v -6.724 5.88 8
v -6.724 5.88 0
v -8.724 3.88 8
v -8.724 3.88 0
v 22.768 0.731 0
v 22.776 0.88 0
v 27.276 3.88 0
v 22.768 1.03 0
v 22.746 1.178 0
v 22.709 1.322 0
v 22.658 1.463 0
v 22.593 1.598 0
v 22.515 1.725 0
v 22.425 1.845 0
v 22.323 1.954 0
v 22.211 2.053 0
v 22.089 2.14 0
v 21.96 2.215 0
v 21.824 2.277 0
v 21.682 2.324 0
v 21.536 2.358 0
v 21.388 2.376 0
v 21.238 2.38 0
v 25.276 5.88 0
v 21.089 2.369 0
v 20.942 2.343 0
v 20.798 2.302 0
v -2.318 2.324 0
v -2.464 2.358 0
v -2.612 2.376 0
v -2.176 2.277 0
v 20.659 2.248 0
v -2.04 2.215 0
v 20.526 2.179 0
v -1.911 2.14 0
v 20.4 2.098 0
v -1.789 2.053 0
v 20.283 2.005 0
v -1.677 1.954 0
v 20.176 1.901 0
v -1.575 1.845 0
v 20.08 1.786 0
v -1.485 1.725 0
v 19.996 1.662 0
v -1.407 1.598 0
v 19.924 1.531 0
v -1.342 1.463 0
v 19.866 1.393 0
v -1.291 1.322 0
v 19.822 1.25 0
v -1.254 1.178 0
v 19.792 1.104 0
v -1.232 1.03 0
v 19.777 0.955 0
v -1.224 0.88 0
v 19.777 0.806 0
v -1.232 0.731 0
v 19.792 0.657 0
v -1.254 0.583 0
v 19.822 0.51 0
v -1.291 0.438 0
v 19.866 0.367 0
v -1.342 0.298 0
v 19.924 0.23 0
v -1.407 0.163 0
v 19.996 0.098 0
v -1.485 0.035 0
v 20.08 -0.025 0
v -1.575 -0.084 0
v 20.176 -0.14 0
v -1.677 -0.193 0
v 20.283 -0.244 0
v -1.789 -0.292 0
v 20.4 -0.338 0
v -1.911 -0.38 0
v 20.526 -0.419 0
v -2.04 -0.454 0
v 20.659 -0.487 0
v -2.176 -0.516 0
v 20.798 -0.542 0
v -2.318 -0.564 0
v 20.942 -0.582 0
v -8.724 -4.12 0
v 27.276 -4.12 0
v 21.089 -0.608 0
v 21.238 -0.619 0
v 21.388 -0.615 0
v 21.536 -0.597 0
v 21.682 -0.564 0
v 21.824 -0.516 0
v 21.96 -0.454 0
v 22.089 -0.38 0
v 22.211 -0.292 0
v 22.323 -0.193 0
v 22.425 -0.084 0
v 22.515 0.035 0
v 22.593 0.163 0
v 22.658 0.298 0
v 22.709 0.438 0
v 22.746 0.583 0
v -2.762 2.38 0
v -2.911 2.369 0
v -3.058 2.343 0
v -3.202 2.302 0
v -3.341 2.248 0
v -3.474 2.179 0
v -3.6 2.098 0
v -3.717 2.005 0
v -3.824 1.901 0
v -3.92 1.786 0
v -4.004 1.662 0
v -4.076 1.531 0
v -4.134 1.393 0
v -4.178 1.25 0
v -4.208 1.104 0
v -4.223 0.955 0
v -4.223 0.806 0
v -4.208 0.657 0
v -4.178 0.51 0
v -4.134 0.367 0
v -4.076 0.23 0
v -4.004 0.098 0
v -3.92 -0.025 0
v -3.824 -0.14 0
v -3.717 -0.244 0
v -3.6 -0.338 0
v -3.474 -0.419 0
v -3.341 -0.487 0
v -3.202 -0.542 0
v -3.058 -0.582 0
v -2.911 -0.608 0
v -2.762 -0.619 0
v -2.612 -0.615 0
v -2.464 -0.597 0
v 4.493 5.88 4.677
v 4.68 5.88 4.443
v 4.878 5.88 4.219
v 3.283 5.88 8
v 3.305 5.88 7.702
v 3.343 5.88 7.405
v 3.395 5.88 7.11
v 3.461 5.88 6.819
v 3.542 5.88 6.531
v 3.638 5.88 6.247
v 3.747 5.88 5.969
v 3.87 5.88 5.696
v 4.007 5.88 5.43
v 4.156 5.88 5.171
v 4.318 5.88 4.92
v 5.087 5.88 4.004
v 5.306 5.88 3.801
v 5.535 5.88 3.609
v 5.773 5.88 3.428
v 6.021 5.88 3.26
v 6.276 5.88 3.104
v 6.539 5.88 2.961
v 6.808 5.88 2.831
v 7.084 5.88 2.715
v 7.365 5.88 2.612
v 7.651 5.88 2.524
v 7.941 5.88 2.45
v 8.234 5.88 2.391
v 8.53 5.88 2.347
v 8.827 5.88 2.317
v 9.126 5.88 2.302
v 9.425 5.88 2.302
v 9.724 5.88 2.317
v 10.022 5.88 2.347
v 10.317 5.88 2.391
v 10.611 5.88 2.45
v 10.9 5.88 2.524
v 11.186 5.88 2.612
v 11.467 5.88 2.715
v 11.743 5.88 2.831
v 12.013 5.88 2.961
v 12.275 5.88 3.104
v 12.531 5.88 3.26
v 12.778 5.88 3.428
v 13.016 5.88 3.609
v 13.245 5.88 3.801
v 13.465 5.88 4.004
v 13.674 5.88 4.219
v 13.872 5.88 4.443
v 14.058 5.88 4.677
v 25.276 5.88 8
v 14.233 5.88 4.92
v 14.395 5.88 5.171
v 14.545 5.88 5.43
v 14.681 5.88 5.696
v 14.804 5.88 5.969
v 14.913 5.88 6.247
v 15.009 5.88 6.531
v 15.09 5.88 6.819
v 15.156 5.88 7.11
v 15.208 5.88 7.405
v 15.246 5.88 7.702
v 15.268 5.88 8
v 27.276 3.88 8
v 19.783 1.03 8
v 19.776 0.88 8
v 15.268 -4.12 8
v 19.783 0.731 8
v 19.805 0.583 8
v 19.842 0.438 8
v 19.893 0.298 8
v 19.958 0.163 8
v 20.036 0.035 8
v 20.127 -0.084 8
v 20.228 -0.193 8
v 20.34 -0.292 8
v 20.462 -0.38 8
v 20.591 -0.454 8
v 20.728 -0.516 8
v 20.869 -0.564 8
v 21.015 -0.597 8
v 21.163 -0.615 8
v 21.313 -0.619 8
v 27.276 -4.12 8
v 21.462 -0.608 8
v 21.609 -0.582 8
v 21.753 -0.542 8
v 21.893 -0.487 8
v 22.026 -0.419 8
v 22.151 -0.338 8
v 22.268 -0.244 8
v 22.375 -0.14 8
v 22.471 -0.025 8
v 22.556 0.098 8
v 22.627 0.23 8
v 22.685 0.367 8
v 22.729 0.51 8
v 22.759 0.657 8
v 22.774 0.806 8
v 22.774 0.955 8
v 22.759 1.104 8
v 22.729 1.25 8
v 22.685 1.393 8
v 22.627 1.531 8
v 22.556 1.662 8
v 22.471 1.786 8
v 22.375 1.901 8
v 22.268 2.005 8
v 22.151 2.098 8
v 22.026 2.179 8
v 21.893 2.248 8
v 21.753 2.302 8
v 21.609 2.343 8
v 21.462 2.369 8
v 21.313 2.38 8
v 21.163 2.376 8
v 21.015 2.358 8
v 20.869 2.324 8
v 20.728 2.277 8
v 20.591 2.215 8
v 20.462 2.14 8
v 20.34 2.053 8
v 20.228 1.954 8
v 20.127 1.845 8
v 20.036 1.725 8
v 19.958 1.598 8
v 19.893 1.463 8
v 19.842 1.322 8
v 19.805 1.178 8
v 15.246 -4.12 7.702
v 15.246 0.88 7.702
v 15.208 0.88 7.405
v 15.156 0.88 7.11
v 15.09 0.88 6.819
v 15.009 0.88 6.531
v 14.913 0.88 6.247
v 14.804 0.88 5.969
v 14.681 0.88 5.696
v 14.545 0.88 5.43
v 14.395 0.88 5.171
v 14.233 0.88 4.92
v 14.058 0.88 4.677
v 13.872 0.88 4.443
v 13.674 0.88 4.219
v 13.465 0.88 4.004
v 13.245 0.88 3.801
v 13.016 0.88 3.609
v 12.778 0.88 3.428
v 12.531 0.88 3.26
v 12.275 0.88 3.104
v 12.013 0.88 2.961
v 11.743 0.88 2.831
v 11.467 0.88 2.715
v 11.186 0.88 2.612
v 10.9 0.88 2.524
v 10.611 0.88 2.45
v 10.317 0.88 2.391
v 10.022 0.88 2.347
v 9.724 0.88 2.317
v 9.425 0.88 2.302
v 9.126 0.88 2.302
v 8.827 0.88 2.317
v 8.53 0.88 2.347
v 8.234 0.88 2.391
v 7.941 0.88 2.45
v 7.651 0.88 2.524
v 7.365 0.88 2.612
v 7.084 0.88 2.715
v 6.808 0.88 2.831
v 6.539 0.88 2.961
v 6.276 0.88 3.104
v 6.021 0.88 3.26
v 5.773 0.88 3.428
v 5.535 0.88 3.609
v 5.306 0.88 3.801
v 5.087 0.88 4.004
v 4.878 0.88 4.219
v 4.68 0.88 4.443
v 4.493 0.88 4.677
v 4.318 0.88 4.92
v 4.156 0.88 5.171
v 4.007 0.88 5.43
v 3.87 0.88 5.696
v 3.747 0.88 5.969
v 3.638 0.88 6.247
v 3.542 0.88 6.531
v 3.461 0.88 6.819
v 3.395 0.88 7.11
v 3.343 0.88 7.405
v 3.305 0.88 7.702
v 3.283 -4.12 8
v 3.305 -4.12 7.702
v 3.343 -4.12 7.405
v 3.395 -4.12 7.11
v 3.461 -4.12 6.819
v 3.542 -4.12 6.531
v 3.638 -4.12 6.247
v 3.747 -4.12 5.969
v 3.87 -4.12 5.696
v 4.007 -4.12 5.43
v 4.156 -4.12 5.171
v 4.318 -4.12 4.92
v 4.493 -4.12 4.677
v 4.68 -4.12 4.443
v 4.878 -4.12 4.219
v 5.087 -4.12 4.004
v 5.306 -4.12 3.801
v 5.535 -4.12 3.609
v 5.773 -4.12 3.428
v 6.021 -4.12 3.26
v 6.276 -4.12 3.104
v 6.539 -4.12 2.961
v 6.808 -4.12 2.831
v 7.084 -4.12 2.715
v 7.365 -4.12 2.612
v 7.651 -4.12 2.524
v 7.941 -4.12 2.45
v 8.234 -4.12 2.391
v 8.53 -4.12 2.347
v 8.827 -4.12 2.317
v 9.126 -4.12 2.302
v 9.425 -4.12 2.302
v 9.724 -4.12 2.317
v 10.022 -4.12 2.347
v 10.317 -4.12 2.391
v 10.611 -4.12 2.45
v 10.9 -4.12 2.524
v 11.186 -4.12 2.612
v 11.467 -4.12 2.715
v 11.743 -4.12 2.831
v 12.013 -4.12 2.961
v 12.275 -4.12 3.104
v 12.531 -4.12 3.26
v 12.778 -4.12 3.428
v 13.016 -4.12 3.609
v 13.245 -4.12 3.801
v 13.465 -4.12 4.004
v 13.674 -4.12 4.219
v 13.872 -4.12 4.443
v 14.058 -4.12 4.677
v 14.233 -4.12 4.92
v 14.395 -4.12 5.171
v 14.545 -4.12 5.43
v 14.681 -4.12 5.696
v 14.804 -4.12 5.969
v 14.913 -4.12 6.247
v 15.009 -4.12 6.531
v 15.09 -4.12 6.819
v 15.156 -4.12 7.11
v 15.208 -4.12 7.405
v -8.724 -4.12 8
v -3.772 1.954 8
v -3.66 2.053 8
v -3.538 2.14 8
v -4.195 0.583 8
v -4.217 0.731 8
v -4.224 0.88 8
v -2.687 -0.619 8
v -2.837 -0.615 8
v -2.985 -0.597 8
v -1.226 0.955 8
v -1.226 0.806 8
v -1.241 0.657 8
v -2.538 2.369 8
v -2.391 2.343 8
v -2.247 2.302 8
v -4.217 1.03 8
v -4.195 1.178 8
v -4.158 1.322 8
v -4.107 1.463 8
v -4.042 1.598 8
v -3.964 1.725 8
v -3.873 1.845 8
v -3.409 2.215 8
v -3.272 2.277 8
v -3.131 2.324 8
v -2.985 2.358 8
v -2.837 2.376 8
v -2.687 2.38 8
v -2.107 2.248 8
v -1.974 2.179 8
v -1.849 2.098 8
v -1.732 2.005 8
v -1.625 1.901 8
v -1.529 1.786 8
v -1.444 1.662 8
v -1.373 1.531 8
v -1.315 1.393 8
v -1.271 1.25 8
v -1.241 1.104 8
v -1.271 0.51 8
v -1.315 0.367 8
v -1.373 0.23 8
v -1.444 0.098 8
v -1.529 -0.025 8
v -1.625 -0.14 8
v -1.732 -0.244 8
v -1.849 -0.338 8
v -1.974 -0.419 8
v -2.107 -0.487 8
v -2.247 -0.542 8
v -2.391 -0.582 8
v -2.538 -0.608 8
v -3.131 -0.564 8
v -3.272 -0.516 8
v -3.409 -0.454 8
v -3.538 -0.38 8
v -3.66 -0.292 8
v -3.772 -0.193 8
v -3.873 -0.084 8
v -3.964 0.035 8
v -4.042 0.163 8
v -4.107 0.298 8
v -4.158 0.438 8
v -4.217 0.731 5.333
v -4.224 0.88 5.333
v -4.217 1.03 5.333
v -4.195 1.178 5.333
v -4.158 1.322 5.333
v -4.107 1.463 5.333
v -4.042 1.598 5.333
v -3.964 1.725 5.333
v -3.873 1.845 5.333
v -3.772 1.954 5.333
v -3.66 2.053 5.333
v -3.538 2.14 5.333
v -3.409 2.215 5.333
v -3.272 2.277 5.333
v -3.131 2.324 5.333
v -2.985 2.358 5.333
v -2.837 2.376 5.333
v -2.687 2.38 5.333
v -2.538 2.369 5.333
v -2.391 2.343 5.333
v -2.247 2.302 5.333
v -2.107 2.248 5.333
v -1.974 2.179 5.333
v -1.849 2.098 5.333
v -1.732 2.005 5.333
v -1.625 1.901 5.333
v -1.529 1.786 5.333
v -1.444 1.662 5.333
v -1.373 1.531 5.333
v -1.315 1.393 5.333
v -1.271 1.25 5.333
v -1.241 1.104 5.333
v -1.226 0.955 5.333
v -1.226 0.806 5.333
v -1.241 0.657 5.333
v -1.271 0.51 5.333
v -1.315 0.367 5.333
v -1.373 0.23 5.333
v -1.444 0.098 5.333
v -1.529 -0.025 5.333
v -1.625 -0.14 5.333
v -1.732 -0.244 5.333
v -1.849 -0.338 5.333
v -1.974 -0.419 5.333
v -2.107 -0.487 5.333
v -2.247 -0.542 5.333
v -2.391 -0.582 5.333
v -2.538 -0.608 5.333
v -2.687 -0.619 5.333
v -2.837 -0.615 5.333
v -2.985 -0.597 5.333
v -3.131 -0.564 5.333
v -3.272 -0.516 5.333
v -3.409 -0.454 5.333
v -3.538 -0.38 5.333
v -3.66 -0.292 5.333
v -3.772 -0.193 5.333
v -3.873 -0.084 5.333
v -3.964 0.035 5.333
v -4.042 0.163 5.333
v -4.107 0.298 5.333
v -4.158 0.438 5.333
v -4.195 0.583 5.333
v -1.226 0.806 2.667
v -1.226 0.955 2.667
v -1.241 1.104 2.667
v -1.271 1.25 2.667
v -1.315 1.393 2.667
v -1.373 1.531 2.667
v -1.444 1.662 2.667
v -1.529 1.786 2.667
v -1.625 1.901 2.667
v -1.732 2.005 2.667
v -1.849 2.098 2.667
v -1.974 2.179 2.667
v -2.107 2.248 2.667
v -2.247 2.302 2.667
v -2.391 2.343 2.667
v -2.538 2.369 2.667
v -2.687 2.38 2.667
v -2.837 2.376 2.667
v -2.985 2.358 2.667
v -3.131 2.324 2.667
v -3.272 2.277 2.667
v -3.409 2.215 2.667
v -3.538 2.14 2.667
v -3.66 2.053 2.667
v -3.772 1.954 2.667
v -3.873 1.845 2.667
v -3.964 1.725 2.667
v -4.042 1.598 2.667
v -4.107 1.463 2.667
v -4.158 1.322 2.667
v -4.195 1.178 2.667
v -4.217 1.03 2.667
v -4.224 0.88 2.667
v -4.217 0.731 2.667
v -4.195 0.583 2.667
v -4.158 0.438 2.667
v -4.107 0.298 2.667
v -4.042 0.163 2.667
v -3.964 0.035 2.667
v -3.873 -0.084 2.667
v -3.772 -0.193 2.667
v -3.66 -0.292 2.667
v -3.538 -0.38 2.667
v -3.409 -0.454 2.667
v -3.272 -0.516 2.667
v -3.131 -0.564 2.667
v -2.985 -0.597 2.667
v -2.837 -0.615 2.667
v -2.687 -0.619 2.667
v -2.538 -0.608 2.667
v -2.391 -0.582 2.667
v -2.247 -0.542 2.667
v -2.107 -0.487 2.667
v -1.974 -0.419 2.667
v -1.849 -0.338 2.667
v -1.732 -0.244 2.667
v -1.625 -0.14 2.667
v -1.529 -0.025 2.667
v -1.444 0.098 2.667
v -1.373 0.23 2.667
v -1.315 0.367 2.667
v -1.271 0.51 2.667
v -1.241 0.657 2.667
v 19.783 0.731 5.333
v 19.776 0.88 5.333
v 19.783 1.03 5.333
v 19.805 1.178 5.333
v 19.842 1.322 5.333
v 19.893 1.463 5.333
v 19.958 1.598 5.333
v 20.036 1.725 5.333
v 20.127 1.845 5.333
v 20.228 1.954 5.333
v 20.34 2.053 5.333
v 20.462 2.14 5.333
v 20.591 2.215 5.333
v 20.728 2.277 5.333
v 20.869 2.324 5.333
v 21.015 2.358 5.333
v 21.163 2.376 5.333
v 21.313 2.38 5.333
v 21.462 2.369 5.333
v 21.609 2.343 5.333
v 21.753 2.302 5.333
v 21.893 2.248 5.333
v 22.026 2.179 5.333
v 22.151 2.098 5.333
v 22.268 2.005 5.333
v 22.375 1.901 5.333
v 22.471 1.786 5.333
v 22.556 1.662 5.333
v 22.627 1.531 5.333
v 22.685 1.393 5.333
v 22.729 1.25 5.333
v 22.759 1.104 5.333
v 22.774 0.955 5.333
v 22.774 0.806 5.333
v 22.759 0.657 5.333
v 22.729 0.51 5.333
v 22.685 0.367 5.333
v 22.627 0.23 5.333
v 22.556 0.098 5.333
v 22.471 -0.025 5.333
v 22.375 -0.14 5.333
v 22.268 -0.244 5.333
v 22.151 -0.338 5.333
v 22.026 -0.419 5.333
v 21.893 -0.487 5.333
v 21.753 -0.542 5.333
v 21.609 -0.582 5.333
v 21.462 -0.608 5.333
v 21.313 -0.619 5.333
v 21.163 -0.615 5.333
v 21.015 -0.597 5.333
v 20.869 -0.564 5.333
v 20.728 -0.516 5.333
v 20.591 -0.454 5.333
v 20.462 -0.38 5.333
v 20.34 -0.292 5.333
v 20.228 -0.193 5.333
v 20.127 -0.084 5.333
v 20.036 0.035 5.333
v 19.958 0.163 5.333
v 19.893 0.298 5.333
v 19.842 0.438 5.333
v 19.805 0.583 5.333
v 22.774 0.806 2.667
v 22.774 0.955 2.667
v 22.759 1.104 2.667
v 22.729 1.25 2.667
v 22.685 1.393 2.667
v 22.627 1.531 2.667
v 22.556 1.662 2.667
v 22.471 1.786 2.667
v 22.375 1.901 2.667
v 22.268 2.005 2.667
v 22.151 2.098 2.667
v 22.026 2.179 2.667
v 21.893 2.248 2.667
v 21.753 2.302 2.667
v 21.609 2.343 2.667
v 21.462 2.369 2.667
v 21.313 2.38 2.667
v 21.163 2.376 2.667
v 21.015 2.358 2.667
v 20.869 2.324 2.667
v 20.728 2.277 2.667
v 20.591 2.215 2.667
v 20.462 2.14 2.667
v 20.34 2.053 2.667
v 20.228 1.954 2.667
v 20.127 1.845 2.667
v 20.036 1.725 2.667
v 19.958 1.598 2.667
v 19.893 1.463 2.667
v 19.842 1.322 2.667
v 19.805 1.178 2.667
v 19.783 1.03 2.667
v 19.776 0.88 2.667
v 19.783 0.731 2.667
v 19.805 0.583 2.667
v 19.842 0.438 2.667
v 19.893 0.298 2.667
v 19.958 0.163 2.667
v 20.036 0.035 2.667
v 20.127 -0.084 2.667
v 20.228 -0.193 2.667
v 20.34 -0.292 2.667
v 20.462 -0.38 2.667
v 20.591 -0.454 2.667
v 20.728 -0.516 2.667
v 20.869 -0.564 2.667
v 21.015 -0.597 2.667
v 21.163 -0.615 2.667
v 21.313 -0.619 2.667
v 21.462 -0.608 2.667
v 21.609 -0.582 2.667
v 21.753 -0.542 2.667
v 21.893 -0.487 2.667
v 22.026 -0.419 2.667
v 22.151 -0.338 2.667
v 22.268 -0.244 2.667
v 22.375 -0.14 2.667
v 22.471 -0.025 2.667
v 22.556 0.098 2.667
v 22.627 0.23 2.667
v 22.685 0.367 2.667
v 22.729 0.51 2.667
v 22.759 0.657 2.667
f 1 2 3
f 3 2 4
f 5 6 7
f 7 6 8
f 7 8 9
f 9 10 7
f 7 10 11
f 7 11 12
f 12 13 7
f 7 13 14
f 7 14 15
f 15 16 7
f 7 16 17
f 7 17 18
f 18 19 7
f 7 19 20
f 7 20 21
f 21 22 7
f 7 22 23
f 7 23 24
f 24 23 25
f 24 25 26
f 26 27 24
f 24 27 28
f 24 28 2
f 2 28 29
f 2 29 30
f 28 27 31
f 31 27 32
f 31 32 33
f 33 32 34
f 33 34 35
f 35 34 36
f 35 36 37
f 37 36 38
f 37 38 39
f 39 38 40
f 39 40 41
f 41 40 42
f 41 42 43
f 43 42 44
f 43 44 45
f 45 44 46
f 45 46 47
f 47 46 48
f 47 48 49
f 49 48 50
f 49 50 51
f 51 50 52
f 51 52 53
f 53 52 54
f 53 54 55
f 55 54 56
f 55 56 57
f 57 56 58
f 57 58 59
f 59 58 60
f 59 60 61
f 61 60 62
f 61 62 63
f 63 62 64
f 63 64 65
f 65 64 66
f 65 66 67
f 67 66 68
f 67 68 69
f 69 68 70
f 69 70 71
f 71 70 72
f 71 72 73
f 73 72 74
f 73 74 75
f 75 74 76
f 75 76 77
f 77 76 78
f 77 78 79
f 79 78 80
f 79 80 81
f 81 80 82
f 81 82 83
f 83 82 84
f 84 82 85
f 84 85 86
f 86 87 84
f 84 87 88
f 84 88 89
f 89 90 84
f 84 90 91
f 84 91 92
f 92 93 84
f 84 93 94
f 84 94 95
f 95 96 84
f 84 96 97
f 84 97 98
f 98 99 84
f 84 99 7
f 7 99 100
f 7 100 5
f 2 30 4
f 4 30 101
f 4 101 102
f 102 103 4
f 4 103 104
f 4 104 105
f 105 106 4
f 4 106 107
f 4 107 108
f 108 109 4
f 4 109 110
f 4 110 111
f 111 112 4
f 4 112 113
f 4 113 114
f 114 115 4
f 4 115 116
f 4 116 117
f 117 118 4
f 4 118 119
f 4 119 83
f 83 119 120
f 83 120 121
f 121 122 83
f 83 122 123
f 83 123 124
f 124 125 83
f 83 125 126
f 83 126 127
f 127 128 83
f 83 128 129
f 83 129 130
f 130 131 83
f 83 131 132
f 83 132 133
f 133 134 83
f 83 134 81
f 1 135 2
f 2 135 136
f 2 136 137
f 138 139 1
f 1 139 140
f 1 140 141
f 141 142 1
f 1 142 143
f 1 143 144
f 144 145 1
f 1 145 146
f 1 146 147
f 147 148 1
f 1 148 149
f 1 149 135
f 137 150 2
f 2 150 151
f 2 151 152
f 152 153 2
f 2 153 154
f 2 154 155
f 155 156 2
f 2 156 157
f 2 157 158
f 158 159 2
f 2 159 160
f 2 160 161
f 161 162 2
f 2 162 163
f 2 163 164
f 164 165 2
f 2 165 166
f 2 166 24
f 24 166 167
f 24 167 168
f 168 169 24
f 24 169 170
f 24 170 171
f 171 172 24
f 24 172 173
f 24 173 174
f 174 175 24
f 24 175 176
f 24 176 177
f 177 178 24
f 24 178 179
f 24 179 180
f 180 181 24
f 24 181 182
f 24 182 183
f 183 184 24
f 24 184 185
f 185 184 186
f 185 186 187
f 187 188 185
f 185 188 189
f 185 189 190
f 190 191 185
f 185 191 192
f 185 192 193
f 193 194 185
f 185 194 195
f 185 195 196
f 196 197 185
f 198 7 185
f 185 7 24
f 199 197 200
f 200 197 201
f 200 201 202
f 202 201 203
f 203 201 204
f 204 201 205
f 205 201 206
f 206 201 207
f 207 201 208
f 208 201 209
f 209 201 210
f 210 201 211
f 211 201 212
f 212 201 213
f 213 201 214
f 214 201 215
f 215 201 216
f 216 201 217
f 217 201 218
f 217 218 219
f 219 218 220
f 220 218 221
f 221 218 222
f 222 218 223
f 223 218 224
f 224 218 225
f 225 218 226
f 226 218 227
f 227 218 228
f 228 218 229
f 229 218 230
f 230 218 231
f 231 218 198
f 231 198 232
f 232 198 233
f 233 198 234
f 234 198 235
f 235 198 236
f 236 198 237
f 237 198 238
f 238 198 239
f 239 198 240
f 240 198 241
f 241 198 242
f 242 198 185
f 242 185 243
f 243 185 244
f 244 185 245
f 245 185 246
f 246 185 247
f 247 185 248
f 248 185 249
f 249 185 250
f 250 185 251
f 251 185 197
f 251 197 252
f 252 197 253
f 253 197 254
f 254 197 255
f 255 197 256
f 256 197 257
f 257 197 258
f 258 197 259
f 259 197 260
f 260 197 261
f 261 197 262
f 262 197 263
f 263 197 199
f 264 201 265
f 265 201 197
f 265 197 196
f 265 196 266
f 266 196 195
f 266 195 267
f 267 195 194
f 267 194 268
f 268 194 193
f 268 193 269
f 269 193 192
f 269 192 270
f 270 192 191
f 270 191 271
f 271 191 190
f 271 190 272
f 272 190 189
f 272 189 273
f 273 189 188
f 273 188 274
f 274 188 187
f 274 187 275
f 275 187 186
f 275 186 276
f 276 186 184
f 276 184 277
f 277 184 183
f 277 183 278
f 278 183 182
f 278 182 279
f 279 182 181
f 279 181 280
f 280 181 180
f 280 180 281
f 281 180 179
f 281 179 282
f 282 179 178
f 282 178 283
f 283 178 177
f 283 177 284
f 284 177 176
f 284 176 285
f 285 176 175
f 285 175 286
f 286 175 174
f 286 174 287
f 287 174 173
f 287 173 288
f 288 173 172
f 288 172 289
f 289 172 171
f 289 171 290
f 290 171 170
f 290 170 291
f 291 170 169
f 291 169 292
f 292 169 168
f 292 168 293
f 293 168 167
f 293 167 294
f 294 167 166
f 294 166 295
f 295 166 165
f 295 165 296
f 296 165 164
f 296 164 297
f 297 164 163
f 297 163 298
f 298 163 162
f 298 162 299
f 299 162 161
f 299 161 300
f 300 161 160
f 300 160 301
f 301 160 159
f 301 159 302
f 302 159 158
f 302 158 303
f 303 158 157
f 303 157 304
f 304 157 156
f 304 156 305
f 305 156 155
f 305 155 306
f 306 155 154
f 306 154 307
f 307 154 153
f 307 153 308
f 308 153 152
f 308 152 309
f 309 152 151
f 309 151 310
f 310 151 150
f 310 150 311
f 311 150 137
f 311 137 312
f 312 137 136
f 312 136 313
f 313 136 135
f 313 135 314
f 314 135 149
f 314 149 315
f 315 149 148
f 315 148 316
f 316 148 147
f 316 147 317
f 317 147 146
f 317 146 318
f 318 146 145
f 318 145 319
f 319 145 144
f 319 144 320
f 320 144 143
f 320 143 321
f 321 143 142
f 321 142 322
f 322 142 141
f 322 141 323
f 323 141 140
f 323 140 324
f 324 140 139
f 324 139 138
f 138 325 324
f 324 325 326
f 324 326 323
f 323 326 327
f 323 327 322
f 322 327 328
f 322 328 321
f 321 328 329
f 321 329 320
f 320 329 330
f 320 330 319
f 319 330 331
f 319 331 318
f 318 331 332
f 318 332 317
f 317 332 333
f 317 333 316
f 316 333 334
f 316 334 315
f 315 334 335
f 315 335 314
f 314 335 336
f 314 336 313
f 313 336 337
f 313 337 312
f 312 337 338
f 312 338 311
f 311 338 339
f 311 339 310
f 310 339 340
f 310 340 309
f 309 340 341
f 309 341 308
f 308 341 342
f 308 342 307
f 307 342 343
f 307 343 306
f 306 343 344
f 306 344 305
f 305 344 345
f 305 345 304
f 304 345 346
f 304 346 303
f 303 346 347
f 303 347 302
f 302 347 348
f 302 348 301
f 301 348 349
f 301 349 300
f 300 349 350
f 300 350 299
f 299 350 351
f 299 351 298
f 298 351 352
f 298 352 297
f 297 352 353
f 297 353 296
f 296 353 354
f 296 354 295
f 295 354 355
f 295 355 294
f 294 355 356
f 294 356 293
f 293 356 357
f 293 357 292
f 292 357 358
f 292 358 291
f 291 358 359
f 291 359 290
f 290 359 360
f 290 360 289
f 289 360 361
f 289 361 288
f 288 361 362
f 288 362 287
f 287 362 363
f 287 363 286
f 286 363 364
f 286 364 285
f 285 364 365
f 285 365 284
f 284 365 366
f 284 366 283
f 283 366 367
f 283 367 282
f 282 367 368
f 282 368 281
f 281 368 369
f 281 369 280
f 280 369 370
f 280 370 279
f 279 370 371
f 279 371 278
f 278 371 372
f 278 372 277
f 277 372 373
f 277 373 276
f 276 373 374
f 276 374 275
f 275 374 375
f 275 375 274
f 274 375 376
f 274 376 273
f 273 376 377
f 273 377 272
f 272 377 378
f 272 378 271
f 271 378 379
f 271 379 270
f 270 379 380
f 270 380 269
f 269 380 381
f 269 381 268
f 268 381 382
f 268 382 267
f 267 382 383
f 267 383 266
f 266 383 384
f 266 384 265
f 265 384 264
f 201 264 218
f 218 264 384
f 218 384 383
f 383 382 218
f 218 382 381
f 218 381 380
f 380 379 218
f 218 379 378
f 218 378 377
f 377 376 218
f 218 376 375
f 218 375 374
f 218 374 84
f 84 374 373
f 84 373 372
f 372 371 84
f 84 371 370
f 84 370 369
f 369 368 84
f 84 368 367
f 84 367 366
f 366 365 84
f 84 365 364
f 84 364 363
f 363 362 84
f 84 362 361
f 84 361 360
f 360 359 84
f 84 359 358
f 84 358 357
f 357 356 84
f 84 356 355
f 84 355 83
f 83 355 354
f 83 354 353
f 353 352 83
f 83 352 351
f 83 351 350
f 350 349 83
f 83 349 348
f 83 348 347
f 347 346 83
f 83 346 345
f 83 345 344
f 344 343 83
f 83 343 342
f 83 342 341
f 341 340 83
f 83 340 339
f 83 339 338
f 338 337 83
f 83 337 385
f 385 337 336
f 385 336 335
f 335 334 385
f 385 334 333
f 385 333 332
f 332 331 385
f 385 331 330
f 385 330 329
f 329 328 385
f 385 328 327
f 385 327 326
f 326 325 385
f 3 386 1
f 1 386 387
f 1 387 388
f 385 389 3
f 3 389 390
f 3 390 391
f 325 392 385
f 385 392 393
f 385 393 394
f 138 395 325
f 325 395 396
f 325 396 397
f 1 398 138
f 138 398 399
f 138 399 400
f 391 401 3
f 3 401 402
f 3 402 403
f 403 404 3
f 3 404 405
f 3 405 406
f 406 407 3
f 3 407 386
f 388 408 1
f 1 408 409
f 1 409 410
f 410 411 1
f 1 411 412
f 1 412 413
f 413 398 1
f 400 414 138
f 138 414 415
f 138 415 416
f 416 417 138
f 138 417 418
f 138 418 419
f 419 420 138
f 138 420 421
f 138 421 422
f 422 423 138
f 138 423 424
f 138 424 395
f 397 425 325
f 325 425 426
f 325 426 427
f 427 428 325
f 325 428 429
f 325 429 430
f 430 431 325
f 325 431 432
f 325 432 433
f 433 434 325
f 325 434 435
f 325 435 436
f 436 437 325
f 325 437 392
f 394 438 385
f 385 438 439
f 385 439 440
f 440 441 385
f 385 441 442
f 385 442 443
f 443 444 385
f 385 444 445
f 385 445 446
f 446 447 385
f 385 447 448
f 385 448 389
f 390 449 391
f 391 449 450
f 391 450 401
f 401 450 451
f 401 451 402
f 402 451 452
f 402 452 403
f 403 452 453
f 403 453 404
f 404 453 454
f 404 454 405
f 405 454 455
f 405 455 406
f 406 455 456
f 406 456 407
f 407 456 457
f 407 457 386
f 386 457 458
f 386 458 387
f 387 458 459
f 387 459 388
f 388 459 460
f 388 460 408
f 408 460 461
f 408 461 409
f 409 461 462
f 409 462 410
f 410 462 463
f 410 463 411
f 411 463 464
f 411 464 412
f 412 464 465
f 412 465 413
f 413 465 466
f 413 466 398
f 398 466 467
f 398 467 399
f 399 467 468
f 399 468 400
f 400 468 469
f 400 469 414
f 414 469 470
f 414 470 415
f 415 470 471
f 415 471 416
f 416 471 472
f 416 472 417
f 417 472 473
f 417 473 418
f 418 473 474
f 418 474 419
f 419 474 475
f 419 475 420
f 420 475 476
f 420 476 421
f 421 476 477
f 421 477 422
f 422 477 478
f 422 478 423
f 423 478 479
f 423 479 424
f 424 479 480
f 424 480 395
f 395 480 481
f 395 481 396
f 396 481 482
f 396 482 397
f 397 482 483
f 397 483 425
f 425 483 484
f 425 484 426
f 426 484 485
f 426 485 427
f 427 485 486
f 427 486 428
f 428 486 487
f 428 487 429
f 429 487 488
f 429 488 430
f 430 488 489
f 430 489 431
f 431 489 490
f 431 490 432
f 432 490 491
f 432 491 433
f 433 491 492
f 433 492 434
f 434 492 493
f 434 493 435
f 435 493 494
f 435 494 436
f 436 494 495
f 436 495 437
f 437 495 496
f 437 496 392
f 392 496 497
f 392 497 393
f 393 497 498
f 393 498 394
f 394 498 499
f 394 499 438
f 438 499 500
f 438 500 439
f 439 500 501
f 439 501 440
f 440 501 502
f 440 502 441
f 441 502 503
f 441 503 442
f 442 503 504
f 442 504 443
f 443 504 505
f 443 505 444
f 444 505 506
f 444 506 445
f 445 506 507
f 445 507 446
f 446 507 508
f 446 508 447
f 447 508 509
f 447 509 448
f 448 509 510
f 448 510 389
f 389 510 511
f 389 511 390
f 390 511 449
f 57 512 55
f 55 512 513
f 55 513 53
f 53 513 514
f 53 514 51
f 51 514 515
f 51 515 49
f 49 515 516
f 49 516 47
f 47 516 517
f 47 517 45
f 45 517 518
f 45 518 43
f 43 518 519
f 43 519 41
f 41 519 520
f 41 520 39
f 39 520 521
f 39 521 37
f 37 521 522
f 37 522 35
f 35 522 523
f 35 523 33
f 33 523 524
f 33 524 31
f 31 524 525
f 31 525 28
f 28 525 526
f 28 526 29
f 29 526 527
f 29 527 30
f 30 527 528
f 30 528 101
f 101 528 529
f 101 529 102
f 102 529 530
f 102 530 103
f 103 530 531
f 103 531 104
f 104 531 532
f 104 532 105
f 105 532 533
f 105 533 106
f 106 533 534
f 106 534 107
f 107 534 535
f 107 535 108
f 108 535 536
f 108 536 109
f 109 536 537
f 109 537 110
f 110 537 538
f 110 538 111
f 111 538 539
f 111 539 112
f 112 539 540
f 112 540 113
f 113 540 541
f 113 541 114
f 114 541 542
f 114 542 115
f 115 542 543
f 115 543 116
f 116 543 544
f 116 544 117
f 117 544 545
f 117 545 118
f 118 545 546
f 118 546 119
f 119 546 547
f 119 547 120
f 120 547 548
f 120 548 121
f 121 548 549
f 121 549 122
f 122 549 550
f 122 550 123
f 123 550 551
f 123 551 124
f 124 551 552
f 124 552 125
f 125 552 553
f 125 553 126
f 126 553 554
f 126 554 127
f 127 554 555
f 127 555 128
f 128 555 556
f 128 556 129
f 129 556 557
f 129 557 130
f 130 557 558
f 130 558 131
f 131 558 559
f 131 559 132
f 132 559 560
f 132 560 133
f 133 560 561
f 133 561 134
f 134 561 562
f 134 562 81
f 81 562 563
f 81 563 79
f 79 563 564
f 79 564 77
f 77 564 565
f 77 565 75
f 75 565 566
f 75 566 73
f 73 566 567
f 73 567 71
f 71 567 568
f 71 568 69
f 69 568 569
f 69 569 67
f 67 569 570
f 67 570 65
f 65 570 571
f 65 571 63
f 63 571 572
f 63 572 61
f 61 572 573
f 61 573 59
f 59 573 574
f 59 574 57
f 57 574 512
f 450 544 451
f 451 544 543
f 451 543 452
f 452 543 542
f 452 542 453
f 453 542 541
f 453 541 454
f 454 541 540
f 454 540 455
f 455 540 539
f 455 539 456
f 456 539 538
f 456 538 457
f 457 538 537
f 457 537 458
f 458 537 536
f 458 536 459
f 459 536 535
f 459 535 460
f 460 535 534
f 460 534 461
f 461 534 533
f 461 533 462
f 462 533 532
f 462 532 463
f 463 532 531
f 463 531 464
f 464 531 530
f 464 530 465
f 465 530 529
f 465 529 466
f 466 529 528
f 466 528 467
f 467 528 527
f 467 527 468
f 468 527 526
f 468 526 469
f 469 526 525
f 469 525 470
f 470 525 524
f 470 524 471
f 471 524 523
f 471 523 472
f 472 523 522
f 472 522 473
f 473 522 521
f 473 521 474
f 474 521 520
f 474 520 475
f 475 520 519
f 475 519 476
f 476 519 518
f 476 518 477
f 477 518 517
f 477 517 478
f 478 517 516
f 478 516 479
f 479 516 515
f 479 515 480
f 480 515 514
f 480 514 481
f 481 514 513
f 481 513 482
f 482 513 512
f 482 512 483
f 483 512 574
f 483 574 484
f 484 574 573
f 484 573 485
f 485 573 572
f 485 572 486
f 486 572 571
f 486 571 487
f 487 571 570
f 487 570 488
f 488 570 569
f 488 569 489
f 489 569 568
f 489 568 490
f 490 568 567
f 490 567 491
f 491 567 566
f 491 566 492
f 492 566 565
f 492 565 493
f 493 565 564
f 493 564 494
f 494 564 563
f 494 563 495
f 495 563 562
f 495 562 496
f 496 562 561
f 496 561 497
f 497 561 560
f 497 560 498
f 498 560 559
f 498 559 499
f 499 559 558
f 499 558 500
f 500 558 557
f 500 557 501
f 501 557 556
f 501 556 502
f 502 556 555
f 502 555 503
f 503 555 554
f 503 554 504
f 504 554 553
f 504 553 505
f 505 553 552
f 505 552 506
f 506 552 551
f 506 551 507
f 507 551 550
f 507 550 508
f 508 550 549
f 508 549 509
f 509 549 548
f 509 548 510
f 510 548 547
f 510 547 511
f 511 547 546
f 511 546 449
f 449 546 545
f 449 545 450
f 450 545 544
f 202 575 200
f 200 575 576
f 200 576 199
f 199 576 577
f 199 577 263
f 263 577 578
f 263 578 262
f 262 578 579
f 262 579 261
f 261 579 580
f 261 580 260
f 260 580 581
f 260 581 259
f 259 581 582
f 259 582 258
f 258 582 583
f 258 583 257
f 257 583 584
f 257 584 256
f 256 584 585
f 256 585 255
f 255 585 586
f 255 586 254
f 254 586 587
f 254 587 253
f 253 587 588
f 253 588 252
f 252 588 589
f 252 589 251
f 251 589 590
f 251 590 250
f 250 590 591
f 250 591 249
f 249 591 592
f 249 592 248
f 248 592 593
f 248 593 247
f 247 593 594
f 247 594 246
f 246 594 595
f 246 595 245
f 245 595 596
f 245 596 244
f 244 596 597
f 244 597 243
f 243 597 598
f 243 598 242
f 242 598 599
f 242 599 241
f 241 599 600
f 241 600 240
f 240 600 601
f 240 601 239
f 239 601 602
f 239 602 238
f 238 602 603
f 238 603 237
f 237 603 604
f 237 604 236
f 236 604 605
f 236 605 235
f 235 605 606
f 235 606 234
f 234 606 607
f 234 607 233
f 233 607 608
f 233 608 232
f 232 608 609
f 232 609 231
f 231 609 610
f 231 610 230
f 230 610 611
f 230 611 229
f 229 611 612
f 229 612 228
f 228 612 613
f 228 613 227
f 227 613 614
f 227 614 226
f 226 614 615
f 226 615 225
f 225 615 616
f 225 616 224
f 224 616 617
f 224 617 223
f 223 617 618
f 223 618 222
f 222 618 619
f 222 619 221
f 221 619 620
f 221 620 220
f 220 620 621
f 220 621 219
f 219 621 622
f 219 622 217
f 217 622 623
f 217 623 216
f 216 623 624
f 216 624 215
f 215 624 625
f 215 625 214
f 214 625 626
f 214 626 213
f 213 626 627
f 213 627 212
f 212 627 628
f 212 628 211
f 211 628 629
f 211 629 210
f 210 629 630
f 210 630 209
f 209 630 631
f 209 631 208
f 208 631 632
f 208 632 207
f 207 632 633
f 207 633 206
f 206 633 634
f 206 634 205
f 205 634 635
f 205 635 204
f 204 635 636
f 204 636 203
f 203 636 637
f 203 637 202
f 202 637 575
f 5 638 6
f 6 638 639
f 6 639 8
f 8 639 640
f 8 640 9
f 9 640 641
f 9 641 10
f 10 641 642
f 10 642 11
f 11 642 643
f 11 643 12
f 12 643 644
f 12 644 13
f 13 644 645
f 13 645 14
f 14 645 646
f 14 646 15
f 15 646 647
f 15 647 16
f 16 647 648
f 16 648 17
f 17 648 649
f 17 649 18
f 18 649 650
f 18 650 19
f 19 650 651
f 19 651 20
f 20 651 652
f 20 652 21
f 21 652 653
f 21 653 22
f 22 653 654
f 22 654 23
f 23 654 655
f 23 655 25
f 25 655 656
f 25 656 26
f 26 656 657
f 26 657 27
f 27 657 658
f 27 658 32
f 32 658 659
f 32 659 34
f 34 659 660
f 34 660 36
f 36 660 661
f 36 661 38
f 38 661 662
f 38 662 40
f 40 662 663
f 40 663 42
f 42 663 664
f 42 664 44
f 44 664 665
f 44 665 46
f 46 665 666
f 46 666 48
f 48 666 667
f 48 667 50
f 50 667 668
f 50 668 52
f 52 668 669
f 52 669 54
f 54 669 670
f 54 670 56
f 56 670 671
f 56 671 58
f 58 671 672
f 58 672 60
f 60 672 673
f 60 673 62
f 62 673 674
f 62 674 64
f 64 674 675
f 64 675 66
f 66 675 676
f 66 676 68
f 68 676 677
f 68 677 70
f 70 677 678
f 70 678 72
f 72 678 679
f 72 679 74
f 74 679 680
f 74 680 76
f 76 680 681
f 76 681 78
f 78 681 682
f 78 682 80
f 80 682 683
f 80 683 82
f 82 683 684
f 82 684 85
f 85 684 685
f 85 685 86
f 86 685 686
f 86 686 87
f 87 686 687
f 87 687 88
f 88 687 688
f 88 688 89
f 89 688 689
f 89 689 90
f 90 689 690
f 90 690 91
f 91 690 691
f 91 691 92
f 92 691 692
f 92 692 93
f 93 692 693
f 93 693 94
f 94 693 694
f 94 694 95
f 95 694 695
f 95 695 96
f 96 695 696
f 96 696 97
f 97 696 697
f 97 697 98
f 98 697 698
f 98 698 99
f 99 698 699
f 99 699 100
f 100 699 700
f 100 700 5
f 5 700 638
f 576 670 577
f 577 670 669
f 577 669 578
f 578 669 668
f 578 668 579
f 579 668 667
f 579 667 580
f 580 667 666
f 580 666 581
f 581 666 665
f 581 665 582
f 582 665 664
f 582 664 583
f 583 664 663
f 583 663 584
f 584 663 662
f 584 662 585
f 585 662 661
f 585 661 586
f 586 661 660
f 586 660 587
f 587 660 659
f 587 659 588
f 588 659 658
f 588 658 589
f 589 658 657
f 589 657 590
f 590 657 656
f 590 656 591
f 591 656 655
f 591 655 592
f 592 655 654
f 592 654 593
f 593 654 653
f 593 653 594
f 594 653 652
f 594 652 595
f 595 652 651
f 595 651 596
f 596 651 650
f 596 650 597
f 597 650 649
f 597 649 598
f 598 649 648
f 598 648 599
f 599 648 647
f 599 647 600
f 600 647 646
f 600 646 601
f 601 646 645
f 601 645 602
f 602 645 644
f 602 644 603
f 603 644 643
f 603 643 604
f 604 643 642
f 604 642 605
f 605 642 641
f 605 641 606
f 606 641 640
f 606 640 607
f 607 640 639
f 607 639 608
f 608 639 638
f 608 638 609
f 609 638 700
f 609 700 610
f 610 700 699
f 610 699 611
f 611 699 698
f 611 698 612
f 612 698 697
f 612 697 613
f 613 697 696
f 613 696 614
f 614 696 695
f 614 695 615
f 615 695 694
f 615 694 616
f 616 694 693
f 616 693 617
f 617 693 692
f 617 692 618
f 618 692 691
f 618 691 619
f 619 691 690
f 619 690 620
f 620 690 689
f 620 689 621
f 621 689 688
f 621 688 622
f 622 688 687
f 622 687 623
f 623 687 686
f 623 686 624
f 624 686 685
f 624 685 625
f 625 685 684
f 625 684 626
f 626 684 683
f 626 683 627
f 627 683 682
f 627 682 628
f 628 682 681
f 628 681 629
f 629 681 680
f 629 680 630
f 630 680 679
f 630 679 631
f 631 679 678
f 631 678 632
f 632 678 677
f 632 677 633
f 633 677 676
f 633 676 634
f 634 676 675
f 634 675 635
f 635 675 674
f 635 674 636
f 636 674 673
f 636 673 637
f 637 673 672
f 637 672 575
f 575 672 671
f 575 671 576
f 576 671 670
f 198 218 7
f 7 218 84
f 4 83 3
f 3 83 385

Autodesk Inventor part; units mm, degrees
ref_plane "YZ Plane" through (0, 0, 0) normal (1, 0, 0) x (0, 1, 0)
ref_plane "XZ Plane" through (0, 0, 0) normal (0, 1, 0) x (-1, 0, 0)
ref_plane "XY Plane" through (0, 0, 0) normal (0, 0, 1) x (1, 0, 0)
sketch "Sketch1" plane through (0, 0, 0) normal (0, 0, 1) x (1, 0, 0)
  line L0 (-8.7244, 5.8803) -> (27.2756, 5.8803)
  line L1 (27.2756, 5.8803) -> (27.2756, -4.1197)
  line L2 (27.2756, -4.1197) -> (-8.7244, -4.1197)
  line L3 (-8.7244, -4.1197) -> (-8.7244, 5.8803)
  point P0 (0, 0)
  point P1 (-2.7244, 0.8803)
  point P2 (21.2756, 0.8803)
  dimension "d0" = 36
  dimension "d1" = 24
  dimension "d2" = 6
  dimension "d3" = 10
  dimension "d4" = 5
extrude "Extrusion1" add sketch "Sketch1" along normal blind 8
hole "Hole1" at (-2.7244, 0.8803, 0) at (21.2756, 0.8803, 0) direction (0, 0, 1) diameter 3 end through all
sketch "Sketch2" plane through (-8.7244, 5.8803, 0) normal (0, 1, 0) x (1, 0, 0)
  line L0 (0, 0) -> (36, 0) projected
  line L1 (0, 0) -> (0, -8) projected
  line L2 (36, -8) -> (0, -8) projected
  line L3 (36, 0) -> (36, -8) projected
  line L4 (0, -8) -> (36, -8) projected
  circle A0 centre (18, -8.3) radius 6
  point P0 (8.7244, 0)
  dimension "d15" = 36
  dimension "d22" = 12
  dimension "d23" = 18
  dimension "d24" = 0.3
extrude "Extrusion2" cut sketch "Sketch2" against normal through all contours A0 L2 | L2 A0
chamfer "Chamfer1" distance 2 angle 45 2 edges at (27.2756, 5.8803, 4) (-8.7244, 5.8803, 4)
equation "\"d2\" = -0.5 * d1 + 0.5 * d0"
equation "\"d23\" = 0.5 * d15"
properties part number "3DP_PLA_X_axis_carriage_laser_mount_clamp" material "ABS Plastic"
